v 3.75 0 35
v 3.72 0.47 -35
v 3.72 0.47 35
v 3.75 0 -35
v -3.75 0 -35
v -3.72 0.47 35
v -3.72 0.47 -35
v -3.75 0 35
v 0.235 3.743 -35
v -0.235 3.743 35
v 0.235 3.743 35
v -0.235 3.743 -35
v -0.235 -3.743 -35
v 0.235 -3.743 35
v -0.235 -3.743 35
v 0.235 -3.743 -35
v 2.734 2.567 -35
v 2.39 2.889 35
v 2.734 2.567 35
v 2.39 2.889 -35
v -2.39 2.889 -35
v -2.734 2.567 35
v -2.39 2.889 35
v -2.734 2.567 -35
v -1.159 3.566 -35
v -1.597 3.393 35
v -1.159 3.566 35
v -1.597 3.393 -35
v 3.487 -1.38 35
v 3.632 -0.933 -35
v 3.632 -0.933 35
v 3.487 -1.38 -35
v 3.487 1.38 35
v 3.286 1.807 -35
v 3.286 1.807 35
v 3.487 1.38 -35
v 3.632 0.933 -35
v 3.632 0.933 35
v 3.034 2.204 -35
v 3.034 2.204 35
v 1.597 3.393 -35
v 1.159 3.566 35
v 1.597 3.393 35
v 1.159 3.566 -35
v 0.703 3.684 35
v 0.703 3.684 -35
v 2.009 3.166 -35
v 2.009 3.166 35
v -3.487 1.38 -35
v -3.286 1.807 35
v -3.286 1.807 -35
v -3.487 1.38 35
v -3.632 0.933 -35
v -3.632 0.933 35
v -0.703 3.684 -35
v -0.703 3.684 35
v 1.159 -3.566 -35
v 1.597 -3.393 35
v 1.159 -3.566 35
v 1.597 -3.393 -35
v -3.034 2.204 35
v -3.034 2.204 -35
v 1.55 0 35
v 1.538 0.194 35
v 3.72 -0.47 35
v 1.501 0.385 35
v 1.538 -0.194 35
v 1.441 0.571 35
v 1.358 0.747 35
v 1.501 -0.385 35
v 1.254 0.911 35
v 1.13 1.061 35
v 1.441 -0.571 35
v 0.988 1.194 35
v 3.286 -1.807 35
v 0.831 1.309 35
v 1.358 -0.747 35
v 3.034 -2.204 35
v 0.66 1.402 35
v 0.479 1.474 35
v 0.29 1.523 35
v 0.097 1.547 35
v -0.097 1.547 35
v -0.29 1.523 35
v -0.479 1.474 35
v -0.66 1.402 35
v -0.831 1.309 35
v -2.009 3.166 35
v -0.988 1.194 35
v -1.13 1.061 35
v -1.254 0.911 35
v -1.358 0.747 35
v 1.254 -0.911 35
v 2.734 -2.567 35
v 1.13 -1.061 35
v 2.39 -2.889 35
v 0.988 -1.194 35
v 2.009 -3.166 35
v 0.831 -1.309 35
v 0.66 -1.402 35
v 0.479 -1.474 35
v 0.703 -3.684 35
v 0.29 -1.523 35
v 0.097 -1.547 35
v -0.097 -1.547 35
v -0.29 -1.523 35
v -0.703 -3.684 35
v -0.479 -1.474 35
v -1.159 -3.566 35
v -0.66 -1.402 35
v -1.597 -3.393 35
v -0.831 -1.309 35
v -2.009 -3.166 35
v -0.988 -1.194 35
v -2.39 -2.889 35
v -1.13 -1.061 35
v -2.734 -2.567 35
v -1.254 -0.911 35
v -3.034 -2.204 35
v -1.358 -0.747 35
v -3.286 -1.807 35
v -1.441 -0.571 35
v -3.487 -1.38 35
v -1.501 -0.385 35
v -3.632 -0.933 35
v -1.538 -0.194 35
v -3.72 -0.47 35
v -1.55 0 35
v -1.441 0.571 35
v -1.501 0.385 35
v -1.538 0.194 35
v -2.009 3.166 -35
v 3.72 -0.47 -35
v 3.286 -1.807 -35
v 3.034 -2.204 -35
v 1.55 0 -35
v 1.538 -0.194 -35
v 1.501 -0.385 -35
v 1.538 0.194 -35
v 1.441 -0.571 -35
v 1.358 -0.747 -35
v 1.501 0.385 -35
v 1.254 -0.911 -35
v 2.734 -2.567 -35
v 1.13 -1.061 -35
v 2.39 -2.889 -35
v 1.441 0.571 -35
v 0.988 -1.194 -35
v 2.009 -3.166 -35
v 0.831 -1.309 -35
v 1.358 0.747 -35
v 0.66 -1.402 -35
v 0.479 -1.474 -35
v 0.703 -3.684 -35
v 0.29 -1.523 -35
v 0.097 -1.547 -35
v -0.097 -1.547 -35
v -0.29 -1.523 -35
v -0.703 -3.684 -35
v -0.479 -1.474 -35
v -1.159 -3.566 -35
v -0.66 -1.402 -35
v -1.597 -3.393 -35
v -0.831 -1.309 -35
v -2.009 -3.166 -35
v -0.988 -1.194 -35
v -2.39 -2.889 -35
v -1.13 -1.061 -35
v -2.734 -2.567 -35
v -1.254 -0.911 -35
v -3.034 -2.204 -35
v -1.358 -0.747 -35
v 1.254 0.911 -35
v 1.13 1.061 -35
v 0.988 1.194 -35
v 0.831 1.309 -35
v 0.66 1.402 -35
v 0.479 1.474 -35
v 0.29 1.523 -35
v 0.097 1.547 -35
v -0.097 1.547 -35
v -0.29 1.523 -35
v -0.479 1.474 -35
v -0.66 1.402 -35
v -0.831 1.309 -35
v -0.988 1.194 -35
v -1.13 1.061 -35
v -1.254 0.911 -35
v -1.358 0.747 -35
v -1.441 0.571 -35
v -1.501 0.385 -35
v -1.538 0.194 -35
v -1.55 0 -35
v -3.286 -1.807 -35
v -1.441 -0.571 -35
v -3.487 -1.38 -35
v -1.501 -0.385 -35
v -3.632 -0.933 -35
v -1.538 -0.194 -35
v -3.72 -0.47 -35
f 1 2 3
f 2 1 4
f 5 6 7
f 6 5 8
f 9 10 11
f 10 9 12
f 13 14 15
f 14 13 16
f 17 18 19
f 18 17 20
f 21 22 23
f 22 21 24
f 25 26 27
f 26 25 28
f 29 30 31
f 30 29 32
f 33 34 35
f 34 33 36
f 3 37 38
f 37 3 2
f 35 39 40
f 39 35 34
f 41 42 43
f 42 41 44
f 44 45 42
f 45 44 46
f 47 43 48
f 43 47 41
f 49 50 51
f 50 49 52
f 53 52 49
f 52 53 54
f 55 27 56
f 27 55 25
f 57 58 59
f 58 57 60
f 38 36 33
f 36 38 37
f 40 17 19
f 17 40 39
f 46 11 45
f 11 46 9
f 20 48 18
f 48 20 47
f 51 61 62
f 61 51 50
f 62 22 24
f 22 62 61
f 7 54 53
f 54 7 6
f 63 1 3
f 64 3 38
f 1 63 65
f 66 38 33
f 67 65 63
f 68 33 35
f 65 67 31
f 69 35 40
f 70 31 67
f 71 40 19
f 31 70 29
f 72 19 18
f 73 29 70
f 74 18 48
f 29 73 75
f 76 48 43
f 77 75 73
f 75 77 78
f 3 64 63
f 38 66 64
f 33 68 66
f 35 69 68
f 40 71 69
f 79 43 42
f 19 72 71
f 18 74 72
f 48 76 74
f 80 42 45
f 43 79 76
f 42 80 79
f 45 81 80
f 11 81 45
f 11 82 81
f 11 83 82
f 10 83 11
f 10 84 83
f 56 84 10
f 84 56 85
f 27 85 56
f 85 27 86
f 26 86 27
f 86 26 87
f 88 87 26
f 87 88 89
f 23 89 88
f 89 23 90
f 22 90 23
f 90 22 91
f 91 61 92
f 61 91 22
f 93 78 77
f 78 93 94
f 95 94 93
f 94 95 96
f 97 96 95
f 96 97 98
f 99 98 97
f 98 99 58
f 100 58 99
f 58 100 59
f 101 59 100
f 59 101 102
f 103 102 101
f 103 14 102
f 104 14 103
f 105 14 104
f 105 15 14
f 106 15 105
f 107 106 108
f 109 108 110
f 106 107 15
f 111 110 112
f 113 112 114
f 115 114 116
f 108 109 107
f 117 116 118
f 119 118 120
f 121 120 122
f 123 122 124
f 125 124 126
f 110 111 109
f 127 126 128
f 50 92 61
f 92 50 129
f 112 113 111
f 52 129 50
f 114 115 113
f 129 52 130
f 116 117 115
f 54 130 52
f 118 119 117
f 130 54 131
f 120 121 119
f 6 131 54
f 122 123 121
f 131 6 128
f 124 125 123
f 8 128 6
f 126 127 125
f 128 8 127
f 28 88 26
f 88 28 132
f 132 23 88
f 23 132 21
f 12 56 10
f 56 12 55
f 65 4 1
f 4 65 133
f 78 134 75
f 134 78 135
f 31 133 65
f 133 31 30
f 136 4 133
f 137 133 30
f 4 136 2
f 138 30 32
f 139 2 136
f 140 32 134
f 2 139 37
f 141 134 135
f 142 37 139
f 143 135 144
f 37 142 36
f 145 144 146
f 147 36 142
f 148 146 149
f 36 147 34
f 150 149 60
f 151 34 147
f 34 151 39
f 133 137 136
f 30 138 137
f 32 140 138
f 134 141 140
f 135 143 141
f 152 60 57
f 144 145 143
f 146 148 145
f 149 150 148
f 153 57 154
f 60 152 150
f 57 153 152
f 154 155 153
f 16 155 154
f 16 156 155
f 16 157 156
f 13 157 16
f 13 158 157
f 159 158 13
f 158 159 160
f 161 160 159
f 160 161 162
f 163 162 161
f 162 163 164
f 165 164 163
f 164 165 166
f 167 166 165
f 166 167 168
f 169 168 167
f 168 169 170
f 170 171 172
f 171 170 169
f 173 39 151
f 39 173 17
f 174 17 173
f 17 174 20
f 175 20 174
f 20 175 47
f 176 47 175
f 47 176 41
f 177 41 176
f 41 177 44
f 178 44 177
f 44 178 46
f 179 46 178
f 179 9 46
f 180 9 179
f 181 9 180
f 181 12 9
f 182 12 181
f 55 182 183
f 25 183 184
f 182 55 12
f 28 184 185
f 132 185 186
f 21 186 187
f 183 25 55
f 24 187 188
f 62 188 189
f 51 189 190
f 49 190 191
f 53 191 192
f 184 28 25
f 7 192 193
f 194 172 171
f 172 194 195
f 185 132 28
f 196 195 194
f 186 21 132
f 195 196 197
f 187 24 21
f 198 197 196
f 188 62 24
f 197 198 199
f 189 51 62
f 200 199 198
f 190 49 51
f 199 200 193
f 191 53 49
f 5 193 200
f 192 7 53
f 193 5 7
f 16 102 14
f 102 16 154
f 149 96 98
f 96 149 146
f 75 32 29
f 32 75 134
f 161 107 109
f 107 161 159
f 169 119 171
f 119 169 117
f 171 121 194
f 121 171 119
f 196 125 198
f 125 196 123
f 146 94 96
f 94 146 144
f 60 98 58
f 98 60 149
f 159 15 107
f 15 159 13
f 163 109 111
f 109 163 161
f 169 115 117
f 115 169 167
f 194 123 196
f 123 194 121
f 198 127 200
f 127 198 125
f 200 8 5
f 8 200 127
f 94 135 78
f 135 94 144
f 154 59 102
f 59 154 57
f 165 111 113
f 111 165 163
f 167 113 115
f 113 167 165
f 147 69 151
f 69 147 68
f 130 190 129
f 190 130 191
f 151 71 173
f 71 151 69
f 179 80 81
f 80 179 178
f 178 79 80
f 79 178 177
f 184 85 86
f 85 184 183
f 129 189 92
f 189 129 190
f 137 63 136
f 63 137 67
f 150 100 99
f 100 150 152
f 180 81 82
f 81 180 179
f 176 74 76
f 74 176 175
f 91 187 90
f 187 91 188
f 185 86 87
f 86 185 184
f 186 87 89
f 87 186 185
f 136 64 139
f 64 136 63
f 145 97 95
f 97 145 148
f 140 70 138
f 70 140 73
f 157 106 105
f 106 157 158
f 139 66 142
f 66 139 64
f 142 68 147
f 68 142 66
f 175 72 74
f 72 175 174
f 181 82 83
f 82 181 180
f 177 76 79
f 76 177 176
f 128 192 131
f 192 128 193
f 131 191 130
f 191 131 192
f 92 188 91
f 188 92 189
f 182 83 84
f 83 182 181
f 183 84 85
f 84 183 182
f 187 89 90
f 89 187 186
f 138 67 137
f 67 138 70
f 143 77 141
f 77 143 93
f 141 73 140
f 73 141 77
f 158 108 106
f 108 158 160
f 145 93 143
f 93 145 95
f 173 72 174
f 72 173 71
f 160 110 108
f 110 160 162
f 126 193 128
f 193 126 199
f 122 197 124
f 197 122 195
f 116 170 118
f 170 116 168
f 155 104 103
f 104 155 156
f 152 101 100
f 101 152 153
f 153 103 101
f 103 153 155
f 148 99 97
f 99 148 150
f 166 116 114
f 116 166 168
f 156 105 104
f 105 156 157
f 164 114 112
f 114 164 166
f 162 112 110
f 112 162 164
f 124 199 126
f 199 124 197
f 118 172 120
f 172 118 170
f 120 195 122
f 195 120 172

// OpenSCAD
$fn = 50;


difference() {
	union() {
		translate(v = [0, 0, -35.0000000000]) {
			cylinder(h = 70, r = 3.7500000000);
		}
	}
	union() {
		translate(v = [0, 0, -100.0000000000]) {
			cylinder(h = 200, r = 1.5500000000);
		}
	}
}
